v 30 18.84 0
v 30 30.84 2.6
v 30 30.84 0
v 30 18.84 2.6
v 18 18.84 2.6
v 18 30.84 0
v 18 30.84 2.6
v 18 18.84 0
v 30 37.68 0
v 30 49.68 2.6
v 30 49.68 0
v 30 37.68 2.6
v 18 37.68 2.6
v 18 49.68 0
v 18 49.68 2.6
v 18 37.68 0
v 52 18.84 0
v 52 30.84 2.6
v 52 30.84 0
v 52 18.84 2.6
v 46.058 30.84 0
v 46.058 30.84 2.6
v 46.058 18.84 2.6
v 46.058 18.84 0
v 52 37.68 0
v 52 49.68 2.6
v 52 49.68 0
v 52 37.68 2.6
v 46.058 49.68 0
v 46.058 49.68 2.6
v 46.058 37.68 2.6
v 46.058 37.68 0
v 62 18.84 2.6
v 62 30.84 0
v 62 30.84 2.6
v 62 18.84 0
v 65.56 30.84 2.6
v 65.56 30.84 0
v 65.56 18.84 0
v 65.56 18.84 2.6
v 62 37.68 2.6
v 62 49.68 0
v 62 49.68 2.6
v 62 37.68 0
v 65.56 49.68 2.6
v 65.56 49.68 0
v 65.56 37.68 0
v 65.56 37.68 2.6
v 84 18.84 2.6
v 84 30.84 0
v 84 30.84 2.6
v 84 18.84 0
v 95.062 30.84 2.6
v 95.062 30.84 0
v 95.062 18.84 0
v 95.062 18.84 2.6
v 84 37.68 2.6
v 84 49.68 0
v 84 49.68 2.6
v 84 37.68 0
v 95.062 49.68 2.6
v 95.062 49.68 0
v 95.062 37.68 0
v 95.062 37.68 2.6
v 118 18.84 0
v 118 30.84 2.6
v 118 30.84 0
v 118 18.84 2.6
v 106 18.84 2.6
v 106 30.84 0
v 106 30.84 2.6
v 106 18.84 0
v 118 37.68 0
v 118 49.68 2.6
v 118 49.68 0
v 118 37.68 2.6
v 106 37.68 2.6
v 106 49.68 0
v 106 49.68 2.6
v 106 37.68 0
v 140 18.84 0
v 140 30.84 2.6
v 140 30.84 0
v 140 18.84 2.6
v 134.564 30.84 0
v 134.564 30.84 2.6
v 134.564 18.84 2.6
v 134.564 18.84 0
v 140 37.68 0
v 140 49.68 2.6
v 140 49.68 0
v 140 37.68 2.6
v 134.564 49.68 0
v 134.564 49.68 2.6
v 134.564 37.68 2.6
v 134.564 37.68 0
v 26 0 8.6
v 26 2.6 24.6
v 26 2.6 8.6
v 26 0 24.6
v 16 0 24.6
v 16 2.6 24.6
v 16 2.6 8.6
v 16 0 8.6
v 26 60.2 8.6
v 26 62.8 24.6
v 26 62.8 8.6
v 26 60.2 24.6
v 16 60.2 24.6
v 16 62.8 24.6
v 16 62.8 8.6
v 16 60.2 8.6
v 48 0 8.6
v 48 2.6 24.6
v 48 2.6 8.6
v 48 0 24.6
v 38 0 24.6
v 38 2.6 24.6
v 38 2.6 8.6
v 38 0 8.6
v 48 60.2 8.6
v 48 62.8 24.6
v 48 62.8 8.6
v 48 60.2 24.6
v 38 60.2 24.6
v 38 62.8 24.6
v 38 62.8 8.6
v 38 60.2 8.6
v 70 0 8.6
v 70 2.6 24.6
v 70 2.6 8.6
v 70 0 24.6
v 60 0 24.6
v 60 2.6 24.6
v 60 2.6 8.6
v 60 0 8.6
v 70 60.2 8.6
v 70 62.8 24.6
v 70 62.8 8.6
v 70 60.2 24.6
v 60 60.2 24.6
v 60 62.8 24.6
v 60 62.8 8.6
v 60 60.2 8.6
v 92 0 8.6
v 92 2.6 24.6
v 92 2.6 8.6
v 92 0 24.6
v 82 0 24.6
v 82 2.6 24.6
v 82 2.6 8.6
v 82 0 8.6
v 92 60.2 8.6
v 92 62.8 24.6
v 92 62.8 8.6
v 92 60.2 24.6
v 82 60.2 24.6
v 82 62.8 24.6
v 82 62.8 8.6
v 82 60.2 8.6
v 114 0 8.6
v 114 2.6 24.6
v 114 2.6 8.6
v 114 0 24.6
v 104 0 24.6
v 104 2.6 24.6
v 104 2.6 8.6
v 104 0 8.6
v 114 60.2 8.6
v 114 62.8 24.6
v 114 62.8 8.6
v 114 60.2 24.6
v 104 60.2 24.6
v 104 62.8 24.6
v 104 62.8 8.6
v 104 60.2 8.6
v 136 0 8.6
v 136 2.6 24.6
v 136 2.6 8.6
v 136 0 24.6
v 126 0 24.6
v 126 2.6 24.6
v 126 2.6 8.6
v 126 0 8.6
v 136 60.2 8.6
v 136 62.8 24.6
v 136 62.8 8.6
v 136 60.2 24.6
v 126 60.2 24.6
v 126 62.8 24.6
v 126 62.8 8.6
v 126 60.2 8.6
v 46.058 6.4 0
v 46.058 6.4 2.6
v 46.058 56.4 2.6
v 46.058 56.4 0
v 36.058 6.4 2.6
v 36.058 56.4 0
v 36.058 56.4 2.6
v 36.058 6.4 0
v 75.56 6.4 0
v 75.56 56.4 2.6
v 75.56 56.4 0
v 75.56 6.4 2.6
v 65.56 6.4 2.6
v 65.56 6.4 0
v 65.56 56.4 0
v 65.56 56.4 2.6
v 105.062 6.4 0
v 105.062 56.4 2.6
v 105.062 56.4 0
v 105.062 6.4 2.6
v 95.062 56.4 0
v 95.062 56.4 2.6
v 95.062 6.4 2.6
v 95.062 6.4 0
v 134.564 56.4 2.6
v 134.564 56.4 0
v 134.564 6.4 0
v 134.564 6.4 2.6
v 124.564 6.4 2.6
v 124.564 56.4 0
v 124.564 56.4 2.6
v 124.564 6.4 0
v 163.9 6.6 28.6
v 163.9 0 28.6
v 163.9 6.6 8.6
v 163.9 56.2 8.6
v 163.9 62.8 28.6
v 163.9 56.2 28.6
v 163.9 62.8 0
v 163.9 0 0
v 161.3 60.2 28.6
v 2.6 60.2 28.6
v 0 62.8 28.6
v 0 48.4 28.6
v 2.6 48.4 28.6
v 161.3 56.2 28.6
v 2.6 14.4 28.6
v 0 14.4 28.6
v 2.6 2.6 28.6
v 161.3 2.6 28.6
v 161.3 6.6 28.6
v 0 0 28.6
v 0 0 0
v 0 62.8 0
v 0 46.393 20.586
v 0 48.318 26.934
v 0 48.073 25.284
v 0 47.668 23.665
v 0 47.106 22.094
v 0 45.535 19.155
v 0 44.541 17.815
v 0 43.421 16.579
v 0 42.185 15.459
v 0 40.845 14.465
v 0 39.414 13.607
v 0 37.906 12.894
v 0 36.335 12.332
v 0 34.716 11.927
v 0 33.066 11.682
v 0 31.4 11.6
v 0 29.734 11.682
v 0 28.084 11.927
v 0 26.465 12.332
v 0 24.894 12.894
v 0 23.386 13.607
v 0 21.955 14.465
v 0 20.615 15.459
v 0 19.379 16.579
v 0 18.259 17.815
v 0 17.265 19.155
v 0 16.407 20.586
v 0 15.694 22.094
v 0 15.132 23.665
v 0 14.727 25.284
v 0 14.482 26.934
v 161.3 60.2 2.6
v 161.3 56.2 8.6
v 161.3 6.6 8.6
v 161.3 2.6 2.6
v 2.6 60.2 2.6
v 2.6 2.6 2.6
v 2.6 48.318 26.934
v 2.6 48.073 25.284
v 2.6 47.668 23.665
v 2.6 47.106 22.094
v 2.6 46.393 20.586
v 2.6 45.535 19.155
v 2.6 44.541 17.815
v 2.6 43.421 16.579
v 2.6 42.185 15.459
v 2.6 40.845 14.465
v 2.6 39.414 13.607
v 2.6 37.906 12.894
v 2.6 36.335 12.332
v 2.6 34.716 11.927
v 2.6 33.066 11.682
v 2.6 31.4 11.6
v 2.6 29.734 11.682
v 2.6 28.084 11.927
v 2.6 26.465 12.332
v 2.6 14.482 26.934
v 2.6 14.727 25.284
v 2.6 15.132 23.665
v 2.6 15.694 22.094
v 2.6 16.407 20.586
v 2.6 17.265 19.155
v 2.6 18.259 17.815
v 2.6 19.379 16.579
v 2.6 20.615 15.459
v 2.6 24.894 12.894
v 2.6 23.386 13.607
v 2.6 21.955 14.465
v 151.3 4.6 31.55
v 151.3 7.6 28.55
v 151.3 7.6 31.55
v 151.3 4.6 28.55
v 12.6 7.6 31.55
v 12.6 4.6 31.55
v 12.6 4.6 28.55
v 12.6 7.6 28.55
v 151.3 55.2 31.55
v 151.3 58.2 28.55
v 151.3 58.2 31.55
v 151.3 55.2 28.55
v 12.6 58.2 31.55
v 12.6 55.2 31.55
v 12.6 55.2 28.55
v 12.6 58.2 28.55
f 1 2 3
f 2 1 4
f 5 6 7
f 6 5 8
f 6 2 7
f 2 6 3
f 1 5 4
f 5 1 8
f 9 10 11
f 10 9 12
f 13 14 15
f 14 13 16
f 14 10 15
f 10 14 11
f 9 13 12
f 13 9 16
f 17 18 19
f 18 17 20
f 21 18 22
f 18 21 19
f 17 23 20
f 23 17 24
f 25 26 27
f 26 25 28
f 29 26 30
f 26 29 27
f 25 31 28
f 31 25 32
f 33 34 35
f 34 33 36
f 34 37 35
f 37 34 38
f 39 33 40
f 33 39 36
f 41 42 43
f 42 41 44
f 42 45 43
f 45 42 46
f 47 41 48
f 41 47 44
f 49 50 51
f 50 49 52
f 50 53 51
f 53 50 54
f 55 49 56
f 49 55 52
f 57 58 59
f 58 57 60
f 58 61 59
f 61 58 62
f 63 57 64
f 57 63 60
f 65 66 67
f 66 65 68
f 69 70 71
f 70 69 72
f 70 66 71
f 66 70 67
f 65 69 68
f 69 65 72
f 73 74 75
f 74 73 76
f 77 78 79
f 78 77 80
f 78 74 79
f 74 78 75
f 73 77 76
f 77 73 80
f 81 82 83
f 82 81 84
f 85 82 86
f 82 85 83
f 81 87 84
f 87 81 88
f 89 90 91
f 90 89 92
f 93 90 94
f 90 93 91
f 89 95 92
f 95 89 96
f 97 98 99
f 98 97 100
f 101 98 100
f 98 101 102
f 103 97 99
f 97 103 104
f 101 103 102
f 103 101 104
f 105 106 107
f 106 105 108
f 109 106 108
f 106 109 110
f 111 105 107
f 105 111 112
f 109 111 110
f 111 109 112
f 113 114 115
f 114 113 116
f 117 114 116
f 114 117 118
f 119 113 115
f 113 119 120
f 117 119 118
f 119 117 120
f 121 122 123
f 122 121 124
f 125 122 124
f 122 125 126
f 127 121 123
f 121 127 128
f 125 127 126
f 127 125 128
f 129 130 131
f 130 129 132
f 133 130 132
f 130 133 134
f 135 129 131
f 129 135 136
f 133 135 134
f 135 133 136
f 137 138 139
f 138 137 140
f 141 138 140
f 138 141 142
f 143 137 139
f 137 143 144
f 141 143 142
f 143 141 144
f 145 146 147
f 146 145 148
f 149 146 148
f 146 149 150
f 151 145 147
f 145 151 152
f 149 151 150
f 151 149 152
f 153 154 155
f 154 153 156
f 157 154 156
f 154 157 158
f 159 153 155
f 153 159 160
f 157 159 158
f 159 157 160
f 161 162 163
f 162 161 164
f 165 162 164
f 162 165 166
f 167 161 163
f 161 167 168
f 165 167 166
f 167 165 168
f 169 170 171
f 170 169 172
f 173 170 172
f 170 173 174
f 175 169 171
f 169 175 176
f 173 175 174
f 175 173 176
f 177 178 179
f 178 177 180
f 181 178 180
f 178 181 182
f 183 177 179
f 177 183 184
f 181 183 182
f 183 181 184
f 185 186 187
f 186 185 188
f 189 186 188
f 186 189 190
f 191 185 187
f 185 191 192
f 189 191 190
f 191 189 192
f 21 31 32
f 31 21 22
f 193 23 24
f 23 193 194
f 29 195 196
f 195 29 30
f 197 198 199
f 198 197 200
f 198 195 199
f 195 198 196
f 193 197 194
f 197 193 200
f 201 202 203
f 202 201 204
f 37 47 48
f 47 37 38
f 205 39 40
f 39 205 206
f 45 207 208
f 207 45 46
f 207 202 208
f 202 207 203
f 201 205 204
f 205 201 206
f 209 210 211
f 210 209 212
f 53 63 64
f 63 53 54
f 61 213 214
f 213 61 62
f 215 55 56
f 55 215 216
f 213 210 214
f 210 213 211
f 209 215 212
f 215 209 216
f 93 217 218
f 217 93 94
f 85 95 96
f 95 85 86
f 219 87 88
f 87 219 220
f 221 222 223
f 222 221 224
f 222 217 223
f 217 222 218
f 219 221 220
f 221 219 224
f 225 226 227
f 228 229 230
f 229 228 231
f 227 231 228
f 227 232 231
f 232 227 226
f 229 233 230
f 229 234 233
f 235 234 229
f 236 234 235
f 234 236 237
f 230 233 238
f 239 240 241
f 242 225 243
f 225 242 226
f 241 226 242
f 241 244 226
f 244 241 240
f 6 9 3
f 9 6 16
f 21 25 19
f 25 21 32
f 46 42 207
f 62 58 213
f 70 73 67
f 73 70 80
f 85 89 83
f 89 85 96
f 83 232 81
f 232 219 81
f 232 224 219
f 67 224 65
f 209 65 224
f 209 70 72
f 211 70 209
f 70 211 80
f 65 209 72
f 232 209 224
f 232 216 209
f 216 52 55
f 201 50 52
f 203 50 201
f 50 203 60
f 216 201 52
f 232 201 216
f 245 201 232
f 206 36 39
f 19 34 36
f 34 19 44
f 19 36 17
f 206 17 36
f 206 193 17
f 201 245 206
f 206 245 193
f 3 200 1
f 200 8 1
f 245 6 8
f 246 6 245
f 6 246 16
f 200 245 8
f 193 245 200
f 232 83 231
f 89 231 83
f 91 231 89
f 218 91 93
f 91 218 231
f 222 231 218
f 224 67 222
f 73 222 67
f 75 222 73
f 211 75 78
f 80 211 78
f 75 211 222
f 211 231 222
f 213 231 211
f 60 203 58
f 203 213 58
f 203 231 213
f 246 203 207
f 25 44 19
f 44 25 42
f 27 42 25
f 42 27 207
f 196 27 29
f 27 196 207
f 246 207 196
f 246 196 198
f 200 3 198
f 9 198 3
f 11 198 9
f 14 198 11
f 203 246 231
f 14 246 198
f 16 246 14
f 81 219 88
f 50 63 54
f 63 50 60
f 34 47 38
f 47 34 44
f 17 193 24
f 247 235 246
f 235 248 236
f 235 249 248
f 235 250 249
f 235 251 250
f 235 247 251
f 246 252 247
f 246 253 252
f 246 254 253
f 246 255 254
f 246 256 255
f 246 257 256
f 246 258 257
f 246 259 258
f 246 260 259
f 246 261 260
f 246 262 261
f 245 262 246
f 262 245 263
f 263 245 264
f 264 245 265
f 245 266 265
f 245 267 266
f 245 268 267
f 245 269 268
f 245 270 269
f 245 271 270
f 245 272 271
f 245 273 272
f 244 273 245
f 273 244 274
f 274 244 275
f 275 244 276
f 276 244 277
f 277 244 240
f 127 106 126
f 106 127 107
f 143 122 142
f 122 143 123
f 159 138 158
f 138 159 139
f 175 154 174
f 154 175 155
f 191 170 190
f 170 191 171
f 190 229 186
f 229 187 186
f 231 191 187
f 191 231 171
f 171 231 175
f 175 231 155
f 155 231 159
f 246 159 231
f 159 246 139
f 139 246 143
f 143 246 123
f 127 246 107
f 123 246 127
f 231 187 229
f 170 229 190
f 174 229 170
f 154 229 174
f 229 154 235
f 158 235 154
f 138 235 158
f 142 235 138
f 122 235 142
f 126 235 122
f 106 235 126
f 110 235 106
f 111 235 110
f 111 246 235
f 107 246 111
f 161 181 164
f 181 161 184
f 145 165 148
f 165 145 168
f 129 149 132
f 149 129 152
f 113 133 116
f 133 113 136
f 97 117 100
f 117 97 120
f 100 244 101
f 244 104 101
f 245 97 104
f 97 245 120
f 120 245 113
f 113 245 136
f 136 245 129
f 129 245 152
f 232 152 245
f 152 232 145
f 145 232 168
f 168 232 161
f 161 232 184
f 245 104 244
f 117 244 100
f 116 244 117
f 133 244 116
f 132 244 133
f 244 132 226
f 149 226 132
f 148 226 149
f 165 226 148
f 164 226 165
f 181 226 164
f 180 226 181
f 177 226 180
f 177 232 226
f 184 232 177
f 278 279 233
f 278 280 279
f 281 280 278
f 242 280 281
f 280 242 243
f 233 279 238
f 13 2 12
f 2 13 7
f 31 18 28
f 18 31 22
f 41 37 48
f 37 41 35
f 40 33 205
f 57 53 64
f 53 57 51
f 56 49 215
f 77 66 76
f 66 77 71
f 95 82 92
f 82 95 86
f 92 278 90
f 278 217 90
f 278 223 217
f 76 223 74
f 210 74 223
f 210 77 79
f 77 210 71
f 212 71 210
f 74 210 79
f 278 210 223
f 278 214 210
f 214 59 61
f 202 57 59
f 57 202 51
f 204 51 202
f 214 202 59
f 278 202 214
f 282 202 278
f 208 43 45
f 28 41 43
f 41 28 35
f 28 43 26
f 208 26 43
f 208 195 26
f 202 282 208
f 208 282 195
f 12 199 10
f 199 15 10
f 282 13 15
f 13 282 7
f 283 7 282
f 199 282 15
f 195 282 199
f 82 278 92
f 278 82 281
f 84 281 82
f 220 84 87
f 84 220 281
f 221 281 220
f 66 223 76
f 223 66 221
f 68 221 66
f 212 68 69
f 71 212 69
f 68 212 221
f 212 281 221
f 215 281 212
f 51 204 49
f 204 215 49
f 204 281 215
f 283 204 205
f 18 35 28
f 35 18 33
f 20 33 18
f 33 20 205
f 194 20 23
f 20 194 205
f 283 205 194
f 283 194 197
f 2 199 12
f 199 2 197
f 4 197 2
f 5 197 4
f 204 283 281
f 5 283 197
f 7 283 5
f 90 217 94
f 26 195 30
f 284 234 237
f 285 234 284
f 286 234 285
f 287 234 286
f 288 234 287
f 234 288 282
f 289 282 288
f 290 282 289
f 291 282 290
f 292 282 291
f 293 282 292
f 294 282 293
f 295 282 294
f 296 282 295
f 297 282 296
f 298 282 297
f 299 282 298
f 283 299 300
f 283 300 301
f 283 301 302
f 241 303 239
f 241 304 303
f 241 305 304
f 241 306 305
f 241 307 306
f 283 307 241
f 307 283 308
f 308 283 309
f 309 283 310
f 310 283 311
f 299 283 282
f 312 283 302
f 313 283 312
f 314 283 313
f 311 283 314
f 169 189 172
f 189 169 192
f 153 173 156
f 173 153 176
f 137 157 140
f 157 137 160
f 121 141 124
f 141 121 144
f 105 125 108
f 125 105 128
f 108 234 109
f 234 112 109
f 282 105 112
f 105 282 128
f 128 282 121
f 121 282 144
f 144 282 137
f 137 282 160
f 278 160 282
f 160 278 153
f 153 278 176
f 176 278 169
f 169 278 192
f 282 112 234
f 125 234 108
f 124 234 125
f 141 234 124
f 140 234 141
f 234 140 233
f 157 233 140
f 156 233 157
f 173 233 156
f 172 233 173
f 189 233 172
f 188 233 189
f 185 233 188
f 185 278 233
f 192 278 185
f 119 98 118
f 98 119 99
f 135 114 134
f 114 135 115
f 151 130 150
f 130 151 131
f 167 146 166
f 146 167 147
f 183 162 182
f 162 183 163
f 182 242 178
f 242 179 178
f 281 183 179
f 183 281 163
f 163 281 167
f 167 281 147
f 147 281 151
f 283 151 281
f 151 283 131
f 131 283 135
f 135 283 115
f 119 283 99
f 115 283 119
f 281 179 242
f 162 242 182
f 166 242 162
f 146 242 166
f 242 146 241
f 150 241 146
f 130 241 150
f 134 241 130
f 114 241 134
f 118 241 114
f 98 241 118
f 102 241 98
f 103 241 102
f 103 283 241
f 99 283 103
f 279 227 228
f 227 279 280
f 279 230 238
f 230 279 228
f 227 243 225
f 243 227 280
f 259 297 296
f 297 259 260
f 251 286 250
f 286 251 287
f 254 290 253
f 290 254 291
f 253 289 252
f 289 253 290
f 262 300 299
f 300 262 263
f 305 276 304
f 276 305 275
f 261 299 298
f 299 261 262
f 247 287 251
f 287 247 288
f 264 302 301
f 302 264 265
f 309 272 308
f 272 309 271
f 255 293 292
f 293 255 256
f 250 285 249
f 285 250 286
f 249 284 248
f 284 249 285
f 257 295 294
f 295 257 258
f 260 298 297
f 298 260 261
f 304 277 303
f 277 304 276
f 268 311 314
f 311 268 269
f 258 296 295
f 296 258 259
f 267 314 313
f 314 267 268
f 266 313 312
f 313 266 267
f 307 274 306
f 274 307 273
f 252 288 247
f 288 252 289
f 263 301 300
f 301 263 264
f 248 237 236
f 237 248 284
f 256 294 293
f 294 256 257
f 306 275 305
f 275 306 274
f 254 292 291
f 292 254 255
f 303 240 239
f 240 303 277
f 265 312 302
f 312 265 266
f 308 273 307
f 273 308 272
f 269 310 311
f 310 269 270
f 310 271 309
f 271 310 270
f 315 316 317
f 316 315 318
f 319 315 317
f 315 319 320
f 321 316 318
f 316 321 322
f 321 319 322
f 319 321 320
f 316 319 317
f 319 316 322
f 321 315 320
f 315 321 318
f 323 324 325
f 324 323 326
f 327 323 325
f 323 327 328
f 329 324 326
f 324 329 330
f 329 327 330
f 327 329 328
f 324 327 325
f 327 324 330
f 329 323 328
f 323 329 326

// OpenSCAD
// ============================================================================
// TACTUS — Power cradle (Anker 737 PowerCore 24K  /  10-port USB hub)
// ----------------------------------------------------------------------------
// Separate from the main box on purpose (docs/15-build-refinements.md §8):
//   - a 140 W Li-ion bank dumping ~33 W should VENT and stay REMOVABLE,
//   - you swap Anker (Mode B cordless) <-> 10-port hub (Mode A wall) per demo,
//   - you must SEE the Anker's screen + reach its ports/button.
// The cradle is an open-faced, vented sled. The hub (smaller, ~150x50x25) sits
// in the same pocket with a foam shim. Velcro strap slots hold either in place
// and let you belt it next to the brain-pack.
//
// Anker 737 (A1289): 155.7 x 54.6 x 49.5 mm, 630 g  (measured-spec).
// Print one. PETG, no supports.  RENDER: F6 -> Export STL.
// ============================================================================

// ---- pocket = device + clearance -------------------------------------------
dev_l   = 155.7;   // along X
dev_w   = 54.6;    // along Y
dev_h   = 49.5;    // along Z
clr     = 1.5;     // all-round clearance

wall    = 2.6;
floor_t = 2.6;
cradle_wall_h = 26;     // how far the side walls come up (leaves screen/ports open)

pl = dev_l + 2*clr;     // pocket length
pw = dev_w + 2*clr;     // pocket width
ol = pl + 2*wall;       // outer length
ow = pw + 2*wall;       // outer width
$fn = 64;
eps = 0.05;

module cradle() {
  difference() {
    // outer body up to wall height + a full floor
    cube([ol, ow, floor_t + cradle_wall_h]);

    // device pocket (open top — device drops in, screen/ports face up & out)
    translate([wall, wall, floor_t])
      cube([pl, pw, cradle_wall_h + eps]);

    // OPEN the +X end fully (Anker ports + button live on one end) ---------
    translate([ol - wall - eps, wall + 4, floor_t + 6])
      cube([wall + 2*eps, pw - 8, cradle_wall_h]);

    // big floor vents (heat off the bank) --------------------------------
    for (ix = [0:5], iy = [0:1])
      translate([18 + ix*22, ow*0.30 + iy*ow*0.30, -eps])
        cube([12, 12, floor_t + 2*eps]);

    // side-wall vents -----------------------------------------------------
    for (ix = [0:5]) {
      translate([16 + ix*22, -eps, floor_t + 6])
        cube([10, wall + 2*eps, cradle_wall_h - 10]);
      translate([16 + ix*22, ow - wall - eps, floor_t + 6])
        cube([10, wall + 2*eps, cradle_wall_h - 10]);
    }

    // velcro / strap slots through the floor (two pairs) ------------------
    for (x = [ol*0.22, ol*0.40, ol*0.58, ol*0.76])
      translate([x, ow*0.5 - 25, -eps])
        cube([10, 50, floor_t + 2*eps]);

    // a finger scoop on the -X end so you can pop the bank out ------------
    translate([-eps, ow/2, floor_t + cradle_wall_h])
      rotate([0,90,0]) cylinder(d = 34, h = wall + 2*eps);
  }

  // two retention lips at the top edges so the device can't slide out ------
  for (y = [wall + 2, ow - wall - 5])
    translate([wall + 10, y, floor_t + cradle_wall_h - eps])
      cube([pl - 20, 3, 3]);
}

cradle();

// ASSEMBLY:
//  - Drop the Anker in screen-up, USB end at the open +X end. Strap it with a
//    velcro loop through the floor slots. Belt the cradle beside the brain-pack.
//  - Mode A: swap in the 10-port hub (foam-shim the extra clearance); the hub's
//    12 V barrel adapter stays OUTSIDE the cradle and plugs to the wall.
//  - Keep both vent faces clear of fabric so the bank breathes.
